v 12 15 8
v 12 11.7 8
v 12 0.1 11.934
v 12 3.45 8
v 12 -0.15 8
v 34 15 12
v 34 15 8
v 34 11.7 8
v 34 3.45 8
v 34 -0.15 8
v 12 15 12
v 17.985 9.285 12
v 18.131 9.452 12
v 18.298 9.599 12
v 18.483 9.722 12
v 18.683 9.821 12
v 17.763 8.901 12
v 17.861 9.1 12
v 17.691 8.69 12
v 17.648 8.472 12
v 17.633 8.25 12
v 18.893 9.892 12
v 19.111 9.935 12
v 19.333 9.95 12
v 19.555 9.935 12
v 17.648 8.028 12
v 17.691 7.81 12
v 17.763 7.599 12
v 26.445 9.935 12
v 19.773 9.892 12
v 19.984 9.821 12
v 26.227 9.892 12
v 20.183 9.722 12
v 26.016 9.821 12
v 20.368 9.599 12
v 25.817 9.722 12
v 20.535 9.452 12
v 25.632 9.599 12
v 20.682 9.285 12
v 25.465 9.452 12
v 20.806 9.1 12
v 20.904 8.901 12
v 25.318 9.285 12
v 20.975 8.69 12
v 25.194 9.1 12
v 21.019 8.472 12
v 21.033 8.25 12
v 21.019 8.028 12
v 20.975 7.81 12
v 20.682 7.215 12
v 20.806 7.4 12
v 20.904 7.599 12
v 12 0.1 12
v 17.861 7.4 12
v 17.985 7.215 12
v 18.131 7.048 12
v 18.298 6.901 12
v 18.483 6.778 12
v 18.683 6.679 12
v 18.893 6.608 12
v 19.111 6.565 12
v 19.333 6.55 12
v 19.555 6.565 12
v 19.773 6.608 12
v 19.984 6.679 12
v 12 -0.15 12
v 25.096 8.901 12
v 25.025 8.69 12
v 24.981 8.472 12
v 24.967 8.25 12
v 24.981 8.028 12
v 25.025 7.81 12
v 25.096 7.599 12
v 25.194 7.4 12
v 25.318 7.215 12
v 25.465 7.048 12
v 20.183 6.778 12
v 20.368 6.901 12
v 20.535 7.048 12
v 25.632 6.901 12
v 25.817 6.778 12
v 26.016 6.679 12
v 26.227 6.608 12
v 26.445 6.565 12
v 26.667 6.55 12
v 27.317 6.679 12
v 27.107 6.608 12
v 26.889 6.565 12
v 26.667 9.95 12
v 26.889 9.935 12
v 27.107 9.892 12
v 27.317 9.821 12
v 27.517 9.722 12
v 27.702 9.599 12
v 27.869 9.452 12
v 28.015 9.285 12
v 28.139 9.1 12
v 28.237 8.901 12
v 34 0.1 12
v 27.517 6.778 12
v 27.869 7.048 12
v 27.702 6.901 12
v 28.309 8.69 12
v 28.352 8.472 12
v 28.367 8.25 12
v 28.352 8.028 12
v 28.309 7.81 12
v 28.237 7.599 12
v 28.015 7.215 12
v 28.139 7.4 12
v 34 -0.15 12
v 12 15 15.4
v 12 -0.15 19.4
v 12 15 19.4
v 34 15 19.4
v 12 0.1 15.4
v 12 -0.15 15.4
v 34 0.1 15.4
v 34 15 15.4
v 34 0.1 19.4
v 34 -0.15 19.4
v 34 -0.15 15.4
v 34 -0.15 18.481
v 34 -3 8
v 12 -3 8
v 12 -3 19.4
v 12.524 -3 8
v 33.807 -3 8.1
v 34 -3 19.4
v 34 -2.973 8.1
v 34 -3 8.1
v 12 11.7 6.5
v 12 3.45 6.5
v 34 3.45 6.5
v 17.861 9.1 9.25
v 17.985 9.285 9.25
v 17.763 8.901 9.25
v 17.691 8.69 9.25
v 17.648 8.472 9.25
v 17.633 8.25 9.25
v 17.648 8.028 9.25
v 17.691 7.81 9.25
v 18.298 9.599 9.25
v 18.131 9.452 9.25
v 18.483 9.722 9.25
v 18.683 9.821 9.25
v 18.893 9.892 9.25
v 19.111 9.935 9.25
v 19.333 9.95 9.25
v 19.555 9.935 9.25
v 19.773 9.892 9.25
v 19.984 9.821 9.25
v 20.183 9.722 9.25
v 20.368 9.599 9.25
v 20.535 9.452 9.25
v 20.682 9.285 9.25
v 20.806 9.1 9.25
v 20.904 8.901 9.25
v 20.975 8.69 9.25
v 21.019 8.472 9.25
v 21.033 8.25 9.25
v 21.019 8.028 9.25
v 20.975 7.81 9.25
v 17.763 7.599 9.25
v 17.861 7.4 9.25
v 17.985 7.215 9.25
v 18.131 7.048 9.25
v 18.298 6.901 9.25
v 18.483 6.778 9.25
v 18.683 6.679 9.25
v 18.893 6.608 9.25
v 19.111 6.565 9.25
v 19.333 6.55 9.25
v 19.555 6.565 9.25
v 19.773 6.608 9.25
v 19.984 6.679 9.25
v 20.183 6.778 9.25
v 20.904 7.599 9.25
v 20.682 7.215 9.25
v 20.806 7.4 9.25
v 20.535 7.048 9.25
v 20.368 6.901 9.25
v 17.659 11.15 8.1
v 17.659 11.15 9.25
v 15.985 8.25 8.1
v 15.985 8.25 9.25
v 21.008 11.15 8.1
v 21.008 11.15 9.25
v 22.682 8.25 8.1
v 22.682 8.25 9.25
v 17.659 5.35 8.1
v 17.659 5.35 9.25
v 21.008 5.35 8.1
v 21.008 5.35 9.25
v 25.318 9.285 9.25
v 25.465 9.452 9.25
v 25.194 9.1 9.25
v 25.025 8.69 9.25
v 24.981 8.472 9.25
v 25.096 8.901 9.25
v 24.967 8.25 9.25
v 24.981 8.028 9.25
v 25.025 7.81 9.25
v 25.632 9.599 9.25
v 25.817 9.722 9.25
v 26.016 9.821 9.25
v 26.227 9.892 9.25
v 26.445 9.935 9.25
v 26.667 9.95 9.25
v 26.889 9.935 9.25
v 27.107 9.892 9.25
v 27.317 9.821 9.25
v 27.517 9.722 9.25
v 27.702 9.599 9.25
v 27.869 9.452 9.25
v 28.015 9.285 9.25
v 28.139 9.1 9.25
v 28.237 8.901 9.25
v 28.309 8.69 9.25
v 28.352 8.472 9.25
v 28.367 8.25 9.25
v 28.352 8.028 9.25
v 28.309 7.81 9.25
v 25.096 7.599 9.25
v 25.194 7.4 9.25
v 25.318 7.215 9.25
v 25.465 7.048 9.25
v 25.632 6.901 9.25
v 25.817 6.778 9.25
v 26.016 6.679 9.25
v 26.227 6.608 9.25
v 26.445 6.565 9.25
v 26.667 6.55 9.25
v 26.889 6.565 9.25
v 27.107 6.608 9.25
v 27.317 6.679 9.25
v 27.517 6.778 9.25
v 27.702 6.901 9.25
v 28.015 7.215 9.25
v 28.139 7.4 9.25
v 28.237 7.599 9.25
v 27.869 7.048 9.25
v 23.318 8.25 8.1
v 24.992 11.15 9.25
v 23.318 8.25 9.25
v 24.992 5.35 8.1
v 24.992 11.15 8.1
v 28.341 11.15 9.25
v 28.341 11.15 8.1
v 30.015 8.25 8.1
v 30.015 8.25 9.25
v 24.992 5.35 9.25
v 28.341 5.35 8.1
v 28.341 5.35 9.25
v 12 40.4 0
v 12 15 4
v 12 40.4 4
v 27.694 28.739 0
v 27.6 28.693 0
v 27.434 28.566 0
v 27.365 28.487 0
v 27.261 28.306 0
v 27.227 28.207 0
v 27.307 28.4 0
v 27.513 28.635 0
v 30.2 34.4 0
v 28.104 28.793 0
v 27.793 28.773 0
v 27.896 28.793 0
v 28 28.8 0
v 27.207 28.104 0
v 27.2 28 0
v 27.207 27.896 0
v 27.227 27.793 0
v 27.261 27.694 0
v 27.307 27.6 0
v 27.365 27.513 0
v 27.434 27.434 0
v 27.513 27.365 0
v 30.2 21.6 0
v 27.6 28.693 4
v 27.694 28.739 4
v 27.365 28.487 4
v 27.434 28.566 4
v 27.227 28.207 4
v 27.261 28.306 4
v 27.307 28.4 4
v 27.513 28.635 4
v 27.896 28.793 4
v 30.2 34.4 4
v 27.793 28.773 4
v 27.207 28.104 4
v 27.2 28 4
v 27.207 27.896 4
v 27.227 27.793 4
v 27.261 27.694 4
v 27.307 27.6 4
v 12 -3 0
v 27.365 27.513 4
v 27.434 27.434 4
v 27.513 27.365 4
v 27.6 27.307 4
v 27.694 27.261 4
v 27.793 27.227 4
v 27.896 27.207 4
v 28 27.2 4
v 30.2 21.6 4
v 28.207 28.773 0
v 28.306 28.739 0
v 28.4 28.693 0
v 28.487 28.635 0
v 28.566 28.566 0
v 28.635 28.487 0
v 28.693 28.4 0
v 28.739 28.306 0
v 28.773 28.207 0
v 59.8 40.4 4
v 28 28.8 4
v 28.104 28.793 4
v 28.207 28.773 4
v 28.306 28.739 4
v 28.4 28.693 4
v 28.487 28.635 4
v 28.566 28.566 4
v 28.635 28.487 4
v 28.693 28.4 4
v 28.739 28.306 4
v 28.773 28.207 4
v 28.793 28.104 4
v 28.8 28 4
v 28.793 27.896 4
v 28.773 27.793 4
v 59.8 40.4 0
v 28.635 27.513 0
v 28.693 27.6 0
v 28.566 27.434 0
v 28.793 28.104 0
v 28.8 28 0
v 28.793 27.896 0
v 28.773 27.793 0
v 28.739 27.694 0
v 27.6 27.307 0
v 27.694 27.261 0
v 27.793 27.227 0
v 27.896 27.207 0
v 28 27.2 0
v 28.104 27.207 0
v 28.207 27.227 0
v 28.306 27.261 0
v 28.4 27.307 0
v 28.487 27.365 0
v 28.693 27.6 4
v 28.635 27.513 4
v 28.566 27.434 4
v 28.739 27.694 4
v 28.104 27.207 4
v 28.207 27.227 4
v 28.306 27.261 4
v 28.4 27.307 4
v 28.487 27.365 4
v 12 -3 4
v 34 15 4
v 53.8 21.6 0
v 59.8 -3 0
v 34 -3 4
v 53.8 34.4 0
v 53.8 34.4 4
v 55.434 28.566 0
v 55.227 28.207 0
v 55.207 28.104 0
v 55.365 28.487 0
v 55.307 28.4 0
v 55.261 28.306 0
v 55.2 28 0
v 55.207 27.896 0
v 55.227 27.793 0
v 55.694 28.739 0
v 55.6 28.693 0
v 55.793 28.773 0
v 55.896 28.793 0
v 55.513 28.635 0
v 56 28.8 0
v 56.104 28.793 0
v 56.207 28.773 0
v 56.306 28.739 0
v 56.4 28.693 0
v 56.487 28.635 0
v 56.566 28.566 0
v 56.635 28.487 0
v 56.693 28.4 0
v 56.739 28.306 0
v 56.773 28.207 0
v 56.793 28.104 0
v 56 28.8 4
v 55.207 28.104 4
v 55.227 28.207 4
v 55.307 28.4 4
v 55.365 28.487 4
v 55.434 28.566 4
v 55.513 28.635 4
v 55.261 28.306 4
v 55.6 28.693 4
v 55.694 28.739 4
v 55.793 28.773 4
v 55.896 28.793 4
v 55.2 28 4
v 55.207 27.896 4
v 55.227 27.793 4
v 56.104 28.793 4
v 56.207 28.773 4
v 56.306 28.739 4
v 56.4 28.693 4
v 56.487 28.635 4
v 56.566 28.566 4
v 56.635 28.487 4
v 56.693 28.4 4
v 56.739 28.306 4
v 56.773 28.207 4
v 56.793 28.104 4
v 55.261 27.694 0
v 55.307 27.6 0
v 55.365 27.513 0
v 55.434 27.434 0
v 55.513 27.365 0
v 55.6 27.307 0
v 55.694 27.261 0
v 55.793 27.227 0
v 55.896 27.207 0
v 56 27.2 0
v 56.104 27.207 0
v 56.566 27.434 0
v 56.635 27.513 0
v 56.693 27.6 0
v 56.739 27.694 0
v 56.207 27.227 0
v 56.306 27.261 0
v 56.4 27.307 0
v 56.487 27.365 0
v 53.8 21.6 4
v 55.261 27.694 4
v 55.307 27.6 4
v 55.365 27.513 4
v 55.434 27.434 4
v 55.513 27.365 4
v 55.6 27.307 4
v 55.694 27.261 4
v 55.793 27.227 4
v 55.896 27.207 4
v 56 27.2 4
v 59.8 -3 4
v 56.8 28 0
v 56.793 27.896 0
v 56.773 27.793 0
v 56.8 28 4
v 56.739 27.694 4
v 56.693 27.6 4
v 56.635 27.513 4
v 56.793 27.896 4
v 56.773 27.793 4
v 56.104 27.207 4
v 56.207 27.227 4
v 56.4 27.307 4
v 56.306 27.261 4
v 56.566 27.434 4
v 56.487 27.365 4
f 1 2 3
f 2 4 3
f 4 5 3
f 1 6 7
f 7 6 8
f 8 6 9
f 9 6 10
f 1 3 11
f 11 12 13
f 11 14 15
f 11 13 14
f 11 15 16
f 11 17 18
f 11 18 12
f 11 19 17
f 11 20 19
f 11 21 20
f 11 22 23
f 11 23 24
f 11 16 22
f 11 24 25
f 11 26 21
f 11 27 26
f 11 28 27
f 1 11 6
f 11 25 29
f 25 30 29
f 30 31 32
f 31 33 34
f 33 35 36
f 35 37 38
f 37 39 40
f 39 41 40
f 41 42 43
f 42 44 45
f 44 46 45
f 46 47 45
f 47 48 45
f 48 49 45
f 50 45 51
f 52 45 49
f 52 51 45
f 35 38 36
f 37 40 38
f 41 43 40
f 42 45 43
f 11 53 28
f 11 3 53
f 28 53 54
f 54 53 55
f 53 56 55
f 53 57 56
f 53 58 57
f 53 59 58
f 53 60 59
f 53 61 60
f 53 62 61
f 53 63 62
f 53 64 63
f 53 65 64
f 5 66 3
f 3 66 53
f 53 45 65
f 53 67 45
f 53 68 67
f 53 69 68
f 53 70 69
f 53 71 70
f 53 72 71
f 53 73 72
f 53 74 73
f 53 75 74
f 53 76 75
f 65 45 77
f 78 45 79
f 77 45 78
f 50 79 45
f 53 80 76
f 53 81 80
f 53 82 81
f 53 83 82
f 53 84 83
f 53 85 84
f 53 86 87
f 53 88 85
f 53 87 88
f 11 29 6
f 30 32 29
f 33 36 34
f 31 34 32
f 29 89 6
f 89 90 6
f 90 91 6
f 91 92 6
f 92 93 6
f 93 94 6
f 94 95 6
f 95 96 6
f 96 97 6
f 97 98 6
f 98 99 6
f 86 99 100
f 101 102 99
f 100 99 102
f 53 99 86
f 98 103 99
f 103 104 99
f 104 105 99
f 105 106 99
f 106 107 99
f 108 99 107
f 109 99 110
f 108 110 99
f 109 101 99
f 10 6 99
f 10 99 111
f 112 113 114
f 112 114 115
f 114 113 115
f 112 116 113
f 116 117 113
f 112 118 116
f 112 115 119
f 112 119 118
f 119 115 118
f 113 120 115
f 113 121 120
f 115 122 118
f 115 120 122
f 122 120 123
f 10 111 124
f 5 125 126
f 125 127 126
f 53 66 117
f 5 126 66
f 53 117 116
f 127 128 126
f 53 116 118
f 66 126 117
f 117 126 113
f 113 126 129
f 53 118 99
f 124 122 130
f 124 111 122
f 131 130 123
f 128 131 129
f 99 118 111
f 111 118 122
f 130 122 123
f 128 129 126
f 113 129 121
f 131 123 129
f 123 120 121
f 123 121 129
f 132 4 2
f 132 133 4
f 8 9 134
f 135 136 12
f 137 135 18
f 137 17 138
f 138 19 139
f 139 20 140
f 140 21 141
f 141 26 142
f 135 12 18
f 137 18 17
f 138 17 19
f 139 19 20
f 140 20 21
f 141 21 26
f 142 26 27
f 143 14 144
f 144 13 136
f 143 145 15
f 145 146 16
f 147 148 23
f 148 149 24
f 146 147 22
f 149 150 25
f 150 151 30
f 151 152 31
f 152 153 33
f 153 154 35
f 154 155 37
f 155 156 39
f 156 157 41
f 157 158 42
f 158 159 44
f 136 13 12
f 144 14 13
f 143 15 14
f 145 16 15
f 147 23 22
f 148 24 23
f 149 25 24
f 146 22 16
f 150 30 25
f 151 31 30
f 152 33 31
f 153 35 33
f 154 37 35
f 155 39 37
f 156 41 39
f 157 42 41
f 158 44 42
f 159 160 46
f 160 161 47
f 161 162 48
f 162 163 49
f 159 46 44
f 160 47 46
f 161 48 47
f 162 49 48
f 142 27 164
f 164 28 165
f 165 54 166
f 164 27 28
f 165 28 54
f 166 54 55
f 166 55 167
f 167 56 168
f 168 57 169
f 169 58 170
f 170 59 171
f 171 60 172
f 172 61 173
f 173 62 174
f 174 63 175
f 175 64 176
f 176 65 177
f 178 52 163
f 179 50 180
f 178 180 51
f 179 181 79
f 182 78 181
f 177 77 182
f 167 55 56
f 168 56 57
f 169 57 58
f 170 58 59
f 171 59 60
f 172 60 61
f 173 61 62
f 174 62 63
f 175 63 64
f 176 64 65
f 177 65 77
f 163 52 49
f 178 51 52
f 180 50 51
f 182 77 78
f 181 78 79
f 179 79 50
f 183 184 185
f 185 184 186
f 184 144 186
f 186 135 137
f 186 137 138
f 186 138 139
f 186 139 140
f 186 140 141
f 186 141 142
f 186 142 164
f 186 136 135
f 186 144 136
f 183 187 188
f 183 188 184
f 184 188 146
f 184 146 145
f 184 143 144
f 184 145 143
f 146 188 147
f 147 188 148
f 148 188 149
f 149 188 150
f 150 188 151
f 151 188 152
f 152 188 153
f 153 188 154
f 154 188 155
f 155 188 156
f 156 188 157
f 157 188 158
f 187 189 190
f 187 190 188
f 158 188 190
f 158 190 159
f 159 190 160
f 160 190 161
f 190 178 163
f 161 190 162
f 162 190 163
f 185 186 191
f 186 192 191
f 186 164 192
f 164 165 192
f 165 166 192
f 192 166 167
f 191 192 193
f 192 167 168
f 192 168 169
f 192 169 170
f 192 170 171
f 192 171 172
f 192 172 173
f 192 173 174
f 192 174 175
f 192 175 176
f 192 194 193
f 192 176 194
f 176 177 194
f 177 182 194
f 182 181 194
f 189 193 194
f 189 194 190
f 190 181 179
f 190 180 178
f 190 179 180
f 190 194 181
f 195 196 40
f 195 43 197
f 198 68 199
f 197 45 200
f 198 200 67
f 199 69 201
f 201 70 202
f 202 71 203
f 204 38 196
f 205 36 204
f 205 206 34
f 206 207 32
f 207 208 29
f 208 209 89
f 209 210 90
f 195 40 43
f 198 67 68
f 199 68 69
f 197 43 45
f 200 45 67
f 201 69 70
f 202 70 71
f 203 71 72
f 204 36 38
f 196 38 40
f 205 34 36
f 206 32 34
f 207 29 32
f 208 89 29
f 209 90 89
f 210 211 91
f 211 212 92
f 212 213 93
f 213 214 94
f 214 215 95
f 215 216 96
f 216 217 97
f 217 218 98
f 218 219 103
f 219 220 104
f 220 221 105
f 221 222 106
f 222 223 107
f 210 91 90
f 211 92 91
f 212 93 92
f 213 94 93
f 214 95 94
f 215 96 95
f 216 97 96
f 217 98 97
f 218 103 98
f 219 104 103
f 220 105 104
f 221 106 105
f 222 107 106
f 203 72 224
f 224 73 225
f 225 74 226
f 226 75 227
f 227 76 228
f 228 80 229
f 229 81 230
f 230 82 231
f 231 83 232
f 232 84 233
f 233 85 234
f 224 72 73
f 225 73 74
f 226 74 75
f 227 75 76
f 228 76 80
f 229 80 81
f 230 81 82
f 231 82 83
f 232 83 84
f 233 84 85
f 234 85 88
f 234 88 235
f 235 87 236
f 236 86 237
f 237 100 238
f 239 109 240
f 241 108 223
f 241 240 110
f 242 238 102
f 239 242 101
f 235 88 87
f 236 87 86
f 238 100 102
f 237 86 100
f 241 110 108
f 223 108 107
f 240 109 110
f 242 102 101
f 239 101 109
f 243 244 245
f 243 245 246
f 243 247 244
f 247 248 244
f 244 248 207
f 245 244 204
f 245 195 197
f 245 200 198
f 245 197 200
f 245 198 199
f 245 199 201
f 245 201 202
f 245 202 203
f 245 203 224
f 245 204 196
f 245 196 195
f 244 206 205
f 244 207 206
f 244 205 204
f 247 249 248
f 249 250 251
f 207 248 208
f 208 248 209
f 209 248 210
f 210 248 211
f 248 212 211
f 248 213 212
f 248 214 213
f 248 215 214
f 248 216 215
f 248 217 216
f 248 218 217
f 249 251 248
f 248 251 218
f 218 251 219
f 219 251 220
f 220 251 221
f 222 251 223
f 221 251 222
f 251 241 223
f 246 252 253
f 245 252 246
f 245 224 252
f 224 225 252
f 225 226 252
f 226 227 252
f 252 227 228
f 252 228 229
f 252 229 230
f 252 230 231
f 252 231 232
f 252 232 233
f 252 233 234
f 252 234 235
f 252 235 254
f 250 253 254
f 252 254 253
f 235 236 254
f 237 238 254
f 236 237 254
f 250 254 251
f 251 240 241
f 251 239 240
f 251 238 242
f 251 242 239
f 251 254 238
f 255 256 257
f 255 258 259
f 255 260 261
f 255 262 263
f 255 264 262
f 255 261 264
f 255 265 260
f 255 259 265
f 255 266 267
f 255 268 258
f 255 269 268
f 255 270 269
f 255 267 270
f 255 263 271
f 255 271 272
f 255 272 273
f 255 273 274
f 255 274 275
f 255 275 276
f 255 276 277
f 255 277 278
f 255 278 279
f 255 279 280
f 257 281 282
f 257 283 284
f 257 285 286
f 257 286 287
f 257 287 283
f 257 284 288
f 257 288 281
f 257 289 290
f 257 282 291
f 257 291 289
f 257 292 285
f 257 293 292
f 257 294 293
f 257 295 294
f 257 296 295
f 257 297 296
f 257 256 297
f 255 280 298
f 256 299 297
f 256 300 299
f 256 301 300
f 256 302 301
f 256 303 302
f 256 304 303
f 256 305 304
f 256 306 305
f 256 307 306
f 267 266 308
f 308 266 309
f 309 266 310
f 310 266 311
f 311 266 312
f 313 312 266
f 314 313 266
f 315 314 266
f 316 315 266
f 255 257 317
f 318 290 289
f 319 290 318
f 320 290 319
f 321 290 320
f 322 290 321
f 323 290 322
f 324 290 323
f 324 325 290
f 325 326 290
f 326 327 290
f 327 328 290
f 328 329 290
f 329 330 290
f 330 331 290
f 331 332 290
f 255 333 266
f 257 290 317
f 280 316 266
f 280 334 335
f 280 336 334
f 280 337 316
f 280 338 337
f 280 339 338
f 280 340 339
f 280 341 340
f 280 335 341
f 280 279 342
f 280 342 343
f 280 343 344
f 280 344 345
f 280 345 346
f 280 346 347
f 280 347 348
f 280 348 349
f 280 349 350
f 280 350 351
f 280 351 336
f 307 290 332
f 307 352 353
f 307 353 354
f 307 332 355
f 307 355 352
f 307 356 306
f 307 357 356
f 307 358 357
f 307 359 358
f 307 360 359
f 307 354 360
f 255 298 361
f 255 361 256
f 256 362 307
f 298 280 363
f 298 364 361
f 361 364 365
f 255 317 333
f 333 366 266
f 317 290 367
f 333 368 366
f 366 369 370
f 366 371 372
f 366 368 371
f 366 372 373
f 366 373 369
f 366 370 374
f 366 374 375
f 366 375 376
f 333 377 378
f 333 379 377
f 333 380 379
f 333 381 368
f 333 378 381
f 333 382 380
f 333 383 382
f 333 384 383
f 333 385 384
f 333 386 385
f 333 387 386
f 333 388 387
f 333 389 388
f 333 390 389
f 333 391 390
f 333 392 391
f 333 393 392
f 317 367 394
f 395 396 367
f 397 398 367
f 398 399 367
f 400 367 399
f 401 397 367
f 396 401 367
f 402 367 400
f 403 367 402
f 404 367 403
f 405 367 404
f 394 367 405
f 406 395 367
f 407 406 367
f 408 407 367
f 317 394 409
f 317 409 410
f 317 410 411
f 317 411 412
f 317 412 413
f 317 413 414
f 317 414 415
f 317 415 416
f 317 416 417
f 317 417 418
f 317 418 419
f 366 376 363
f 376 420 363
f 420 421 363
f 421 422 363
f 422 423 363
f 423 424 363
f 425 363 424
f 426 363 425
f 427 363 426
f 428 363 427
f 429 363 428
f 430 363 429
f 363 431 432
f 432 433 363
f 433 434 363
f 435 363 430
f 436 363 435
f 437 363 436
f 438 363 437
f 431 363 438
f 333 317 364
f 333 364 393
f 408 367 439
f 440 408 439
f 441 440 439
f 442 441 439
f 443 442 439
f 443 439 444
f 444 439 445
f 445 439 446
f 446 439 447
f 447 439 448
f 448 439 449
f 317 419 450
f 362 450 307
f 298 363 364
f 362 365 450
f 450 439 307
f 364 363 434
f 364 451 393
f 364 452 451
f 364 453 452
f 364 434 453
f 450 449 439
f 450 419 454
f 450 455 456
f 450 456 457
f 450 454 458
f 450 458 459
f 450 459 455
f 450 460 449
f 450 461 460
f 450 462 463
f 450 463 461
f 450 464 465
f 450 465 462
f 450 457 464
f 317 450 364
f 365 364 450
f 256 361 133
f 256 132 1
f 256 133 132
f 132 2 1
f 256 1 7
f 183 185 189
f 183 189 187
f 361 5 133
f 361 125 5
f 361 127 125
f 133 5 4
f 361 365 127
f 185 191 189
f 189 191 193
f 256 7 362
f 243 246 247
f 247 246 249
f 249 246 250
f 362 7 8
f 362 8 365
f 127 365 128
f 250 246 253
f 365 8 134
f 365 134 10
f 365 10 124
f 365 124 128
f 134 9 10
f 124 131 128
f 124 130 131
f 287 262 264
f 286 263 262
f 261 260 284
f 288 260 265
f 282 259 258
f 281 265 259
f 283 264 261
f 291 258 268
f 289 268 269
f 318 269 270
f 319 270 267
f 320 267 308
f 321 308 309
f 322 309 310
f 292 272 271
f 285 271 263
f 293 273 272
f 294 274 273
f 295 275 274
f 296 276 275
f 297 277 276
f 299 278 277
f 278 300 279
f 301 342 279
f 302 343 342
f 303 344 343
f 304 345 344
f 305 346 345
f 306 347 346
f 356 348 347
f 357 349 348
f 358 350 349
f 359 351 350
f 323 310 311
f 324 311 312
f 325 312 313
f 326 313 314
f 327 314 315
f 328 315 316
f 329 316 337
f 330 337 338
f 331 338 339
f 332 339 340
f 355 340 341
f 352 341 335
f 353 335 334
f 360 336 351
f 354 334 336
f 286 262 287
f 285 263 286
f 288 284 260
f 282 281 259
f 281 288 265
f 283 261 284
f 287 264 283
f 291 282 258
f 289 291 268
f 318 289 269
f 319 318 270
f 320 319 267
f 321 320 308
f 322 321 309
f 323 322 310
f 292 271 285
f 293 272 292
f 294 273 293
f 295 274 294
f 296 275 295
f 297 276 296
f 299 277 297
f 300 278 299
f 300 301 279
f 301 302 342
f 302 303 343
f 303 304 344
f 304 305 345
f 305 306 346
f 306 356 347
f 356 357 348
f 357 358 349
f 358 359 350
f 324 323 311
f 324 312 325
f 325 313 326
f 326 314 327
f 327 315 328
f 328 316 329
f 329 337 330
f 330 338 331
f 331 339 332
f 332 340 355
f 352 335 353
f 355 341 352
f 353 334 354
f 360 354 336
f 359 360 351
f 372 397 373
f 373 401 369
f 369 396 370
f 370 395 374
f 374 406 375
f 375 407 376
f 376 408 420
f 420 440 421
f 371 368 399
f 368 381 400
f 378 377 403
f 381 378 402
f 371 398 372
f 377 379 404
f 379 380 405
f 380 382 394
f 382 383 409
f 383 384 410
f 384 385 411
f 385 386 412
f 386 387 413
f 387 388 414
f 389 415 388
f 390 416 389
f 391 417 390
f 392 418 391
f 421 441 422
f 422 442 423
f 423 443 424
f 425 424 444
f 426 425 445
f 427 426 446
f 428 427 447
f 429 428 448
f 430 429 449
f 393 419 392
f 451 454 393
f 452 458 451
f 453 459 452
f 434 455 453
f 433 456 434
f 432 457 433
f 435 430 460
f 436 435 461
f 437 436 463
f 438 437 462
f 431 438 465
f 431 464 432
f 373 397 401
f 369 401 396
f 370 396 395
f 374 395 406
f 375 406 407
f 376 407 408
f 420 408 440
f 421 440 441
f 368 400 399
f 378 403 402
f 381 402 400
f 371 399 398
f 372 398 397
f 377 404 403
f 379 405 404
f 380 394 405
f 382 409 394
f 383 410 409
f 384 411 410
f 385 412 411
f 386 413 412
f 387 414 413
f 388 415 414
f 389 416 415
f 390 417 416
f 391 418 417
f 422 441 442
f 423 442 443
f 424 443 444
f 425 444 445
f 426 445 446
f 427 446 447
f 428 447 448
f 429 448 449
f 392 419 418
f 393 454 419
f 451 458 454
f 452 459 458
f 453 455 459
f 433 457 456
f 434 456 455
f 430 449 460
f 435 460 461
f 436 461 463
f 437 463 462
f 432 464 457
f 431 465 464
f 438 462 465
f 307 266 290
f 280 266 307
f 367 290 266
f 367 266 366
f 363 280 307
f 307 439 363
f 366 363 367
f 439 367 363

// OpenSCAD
// Provisional side-rim mount. Local X runs inward from the hinge plane,
// local Y runs inward from the selected side wall, and Z points up.
// Printable output is laid on its broad X/Z face; no measured side-rim fit is claimed.
include <parameters.scad>

$fn = 48;
eps = 0.04;
side_outer = side_clamp_gap / 2 + side_clamp_wall;
side_body_center_x = side_servo_shaft_x - servo_shaft_offset_x;
side_body_center_z = side_servo_shaft_z - side_rim_top_z;
side_aperture_x = servo_body_x + 2 * body_clearance_per_side;
side_aperture_z = servo_body_y + 2 * body_clearance_per_side;
side_plate_left = min(side_clamp_start_x,
                      side_body_center_x - side_aperture_x / 2 - side_servo_plate_margin);
side_plate_right = side_body_center_x + side_aperture_x / 2 + side_servo_plate_margin;
side_plate_bottom = side_body_center_z - side_aperture_z / 2 - side_servo_plate_margin;
side_plate_top = max(side_clamp_bridge,
                     side_body_center_z + side_aperture_z / 2 + side_servo_plate_margin);
side_plate_inner_y = -side_outer - side_servo_plate_outset;
side_plate_outer_y = side_plate_inner_y - side_servo_plate_thickness;

assert(mount_side == "left" || mount_side == "right");
assert(side_clamp_gap >= side_rim_wall_thickness);
assert(side_clamp_length >= 16 && side_rim_grip_depth >= 10);
assert(side_plate_left < side_clamp_start_x + side_clamp_length);
assert(side_plate_bottom < -side_rim_grip_depth);
assert(servo_ear_hole_pitch / 2 - servo_ear_pilot_d / 2 > side_aperture_x / 2);

module side_rim_clamp(length = side_clamp_length, screws = 2) {
    difference() {
        union() {
            // U section over a PROVISIONAL upright side-rim wall.
            translate([0, -side_outer, -side_rim_grip_depth])
                cube([length, side_clamp_wall, side_rim_grip_depth + 0.15]);
            translate([0, side_clamp_gap / 2, -side_rim_grip_depth])
                cube([length, side_clamp_wall, side_rim_grip_depth + 0.15]);
            translate([0, -side_outer, -0.1])
                cube([length, 2 * side_outer, side_clamp_bridge + 0.1]);
            // Extra outside material keeps the nut pocket within the jaw.
            translate([0, -side_outer - 1.5, -side_rim_grip_depth * 0.78])
                cube([length, 1.5, side_rim_grip_depth * 0.55]);
        }
        for (i = [1 : screws]) {
            sx = length * i / (screws + 1);
            sz = -side_rim_grip_depth * 0.55;
            translate([sx, -side_outer - 1.6, sz])
                rotate([-90, 0, 0])
                    cylinder(d = side_clamp_screw_d, h = side_clamp_wall + 1.8);
            translate([sx, -side_outer - 1.55, sz])
                rotate([-90, 0, 0])
                    cylinder(d = side_clamp_nut_af / cos(30),
                             h = side_clamp_nut_depth, $fn = 6);
        }
    }
}

module side_servo_mount() {
    difference() {
        union() {
            translate([side_clamp_start_x, 0, 0]) side_rim_clamp();
            // Servo ear plate and aperture face the outside of the bin.
            translate([side_plate_left, side_plate_outer_y, side_plate_bottom])
                cube([side_plate_right - side_plate_left,
                      side_servo_plate_thickness,
                      side_plate_top - side_plate_bottom]);
            // Continuous web ties the whole clamp length to the plate so the
            // exterior jaw is supported when the plate face is on the bed.
            translate([side_clamp_start_x, side_plate_inner_y - 0.1,
                       -side_rim_grip_depth])
                cube([side_clamp_length,
                      -side_outer - side_plate_inner_y + 0.2,
                      side_rim_grip_depth + side_clamp_bridge]);
        }
        translate([side_body_center_x - side_aperture_x / 2,
                   side_plate_outer_y - eps,
                   side_body_center_z - side_aperture_z / 2])
            cube([side_aperture_x,
                  side_servo_plate_thickness + 2 * eps,
                  side_aperture_z]);
        for (sx = [-1, 1])
            translate([side_body_center_x + sx * servo_ear_hole_pitch / 2,
                       side_plate_outer_y - eps, side_body_center_z])
                rotate([-90, 0, 0])
                    cylinder(d = servo_ear_pilot_d,
                             h = side_servo_plate_thickness + 2 * eps);
    }
}

// Reorient the broad X/Z profile onto the print bed.
translate([0, 0, -side_plate_outer_y]) rotate([90, 0, 0]) side_servo_mount();
